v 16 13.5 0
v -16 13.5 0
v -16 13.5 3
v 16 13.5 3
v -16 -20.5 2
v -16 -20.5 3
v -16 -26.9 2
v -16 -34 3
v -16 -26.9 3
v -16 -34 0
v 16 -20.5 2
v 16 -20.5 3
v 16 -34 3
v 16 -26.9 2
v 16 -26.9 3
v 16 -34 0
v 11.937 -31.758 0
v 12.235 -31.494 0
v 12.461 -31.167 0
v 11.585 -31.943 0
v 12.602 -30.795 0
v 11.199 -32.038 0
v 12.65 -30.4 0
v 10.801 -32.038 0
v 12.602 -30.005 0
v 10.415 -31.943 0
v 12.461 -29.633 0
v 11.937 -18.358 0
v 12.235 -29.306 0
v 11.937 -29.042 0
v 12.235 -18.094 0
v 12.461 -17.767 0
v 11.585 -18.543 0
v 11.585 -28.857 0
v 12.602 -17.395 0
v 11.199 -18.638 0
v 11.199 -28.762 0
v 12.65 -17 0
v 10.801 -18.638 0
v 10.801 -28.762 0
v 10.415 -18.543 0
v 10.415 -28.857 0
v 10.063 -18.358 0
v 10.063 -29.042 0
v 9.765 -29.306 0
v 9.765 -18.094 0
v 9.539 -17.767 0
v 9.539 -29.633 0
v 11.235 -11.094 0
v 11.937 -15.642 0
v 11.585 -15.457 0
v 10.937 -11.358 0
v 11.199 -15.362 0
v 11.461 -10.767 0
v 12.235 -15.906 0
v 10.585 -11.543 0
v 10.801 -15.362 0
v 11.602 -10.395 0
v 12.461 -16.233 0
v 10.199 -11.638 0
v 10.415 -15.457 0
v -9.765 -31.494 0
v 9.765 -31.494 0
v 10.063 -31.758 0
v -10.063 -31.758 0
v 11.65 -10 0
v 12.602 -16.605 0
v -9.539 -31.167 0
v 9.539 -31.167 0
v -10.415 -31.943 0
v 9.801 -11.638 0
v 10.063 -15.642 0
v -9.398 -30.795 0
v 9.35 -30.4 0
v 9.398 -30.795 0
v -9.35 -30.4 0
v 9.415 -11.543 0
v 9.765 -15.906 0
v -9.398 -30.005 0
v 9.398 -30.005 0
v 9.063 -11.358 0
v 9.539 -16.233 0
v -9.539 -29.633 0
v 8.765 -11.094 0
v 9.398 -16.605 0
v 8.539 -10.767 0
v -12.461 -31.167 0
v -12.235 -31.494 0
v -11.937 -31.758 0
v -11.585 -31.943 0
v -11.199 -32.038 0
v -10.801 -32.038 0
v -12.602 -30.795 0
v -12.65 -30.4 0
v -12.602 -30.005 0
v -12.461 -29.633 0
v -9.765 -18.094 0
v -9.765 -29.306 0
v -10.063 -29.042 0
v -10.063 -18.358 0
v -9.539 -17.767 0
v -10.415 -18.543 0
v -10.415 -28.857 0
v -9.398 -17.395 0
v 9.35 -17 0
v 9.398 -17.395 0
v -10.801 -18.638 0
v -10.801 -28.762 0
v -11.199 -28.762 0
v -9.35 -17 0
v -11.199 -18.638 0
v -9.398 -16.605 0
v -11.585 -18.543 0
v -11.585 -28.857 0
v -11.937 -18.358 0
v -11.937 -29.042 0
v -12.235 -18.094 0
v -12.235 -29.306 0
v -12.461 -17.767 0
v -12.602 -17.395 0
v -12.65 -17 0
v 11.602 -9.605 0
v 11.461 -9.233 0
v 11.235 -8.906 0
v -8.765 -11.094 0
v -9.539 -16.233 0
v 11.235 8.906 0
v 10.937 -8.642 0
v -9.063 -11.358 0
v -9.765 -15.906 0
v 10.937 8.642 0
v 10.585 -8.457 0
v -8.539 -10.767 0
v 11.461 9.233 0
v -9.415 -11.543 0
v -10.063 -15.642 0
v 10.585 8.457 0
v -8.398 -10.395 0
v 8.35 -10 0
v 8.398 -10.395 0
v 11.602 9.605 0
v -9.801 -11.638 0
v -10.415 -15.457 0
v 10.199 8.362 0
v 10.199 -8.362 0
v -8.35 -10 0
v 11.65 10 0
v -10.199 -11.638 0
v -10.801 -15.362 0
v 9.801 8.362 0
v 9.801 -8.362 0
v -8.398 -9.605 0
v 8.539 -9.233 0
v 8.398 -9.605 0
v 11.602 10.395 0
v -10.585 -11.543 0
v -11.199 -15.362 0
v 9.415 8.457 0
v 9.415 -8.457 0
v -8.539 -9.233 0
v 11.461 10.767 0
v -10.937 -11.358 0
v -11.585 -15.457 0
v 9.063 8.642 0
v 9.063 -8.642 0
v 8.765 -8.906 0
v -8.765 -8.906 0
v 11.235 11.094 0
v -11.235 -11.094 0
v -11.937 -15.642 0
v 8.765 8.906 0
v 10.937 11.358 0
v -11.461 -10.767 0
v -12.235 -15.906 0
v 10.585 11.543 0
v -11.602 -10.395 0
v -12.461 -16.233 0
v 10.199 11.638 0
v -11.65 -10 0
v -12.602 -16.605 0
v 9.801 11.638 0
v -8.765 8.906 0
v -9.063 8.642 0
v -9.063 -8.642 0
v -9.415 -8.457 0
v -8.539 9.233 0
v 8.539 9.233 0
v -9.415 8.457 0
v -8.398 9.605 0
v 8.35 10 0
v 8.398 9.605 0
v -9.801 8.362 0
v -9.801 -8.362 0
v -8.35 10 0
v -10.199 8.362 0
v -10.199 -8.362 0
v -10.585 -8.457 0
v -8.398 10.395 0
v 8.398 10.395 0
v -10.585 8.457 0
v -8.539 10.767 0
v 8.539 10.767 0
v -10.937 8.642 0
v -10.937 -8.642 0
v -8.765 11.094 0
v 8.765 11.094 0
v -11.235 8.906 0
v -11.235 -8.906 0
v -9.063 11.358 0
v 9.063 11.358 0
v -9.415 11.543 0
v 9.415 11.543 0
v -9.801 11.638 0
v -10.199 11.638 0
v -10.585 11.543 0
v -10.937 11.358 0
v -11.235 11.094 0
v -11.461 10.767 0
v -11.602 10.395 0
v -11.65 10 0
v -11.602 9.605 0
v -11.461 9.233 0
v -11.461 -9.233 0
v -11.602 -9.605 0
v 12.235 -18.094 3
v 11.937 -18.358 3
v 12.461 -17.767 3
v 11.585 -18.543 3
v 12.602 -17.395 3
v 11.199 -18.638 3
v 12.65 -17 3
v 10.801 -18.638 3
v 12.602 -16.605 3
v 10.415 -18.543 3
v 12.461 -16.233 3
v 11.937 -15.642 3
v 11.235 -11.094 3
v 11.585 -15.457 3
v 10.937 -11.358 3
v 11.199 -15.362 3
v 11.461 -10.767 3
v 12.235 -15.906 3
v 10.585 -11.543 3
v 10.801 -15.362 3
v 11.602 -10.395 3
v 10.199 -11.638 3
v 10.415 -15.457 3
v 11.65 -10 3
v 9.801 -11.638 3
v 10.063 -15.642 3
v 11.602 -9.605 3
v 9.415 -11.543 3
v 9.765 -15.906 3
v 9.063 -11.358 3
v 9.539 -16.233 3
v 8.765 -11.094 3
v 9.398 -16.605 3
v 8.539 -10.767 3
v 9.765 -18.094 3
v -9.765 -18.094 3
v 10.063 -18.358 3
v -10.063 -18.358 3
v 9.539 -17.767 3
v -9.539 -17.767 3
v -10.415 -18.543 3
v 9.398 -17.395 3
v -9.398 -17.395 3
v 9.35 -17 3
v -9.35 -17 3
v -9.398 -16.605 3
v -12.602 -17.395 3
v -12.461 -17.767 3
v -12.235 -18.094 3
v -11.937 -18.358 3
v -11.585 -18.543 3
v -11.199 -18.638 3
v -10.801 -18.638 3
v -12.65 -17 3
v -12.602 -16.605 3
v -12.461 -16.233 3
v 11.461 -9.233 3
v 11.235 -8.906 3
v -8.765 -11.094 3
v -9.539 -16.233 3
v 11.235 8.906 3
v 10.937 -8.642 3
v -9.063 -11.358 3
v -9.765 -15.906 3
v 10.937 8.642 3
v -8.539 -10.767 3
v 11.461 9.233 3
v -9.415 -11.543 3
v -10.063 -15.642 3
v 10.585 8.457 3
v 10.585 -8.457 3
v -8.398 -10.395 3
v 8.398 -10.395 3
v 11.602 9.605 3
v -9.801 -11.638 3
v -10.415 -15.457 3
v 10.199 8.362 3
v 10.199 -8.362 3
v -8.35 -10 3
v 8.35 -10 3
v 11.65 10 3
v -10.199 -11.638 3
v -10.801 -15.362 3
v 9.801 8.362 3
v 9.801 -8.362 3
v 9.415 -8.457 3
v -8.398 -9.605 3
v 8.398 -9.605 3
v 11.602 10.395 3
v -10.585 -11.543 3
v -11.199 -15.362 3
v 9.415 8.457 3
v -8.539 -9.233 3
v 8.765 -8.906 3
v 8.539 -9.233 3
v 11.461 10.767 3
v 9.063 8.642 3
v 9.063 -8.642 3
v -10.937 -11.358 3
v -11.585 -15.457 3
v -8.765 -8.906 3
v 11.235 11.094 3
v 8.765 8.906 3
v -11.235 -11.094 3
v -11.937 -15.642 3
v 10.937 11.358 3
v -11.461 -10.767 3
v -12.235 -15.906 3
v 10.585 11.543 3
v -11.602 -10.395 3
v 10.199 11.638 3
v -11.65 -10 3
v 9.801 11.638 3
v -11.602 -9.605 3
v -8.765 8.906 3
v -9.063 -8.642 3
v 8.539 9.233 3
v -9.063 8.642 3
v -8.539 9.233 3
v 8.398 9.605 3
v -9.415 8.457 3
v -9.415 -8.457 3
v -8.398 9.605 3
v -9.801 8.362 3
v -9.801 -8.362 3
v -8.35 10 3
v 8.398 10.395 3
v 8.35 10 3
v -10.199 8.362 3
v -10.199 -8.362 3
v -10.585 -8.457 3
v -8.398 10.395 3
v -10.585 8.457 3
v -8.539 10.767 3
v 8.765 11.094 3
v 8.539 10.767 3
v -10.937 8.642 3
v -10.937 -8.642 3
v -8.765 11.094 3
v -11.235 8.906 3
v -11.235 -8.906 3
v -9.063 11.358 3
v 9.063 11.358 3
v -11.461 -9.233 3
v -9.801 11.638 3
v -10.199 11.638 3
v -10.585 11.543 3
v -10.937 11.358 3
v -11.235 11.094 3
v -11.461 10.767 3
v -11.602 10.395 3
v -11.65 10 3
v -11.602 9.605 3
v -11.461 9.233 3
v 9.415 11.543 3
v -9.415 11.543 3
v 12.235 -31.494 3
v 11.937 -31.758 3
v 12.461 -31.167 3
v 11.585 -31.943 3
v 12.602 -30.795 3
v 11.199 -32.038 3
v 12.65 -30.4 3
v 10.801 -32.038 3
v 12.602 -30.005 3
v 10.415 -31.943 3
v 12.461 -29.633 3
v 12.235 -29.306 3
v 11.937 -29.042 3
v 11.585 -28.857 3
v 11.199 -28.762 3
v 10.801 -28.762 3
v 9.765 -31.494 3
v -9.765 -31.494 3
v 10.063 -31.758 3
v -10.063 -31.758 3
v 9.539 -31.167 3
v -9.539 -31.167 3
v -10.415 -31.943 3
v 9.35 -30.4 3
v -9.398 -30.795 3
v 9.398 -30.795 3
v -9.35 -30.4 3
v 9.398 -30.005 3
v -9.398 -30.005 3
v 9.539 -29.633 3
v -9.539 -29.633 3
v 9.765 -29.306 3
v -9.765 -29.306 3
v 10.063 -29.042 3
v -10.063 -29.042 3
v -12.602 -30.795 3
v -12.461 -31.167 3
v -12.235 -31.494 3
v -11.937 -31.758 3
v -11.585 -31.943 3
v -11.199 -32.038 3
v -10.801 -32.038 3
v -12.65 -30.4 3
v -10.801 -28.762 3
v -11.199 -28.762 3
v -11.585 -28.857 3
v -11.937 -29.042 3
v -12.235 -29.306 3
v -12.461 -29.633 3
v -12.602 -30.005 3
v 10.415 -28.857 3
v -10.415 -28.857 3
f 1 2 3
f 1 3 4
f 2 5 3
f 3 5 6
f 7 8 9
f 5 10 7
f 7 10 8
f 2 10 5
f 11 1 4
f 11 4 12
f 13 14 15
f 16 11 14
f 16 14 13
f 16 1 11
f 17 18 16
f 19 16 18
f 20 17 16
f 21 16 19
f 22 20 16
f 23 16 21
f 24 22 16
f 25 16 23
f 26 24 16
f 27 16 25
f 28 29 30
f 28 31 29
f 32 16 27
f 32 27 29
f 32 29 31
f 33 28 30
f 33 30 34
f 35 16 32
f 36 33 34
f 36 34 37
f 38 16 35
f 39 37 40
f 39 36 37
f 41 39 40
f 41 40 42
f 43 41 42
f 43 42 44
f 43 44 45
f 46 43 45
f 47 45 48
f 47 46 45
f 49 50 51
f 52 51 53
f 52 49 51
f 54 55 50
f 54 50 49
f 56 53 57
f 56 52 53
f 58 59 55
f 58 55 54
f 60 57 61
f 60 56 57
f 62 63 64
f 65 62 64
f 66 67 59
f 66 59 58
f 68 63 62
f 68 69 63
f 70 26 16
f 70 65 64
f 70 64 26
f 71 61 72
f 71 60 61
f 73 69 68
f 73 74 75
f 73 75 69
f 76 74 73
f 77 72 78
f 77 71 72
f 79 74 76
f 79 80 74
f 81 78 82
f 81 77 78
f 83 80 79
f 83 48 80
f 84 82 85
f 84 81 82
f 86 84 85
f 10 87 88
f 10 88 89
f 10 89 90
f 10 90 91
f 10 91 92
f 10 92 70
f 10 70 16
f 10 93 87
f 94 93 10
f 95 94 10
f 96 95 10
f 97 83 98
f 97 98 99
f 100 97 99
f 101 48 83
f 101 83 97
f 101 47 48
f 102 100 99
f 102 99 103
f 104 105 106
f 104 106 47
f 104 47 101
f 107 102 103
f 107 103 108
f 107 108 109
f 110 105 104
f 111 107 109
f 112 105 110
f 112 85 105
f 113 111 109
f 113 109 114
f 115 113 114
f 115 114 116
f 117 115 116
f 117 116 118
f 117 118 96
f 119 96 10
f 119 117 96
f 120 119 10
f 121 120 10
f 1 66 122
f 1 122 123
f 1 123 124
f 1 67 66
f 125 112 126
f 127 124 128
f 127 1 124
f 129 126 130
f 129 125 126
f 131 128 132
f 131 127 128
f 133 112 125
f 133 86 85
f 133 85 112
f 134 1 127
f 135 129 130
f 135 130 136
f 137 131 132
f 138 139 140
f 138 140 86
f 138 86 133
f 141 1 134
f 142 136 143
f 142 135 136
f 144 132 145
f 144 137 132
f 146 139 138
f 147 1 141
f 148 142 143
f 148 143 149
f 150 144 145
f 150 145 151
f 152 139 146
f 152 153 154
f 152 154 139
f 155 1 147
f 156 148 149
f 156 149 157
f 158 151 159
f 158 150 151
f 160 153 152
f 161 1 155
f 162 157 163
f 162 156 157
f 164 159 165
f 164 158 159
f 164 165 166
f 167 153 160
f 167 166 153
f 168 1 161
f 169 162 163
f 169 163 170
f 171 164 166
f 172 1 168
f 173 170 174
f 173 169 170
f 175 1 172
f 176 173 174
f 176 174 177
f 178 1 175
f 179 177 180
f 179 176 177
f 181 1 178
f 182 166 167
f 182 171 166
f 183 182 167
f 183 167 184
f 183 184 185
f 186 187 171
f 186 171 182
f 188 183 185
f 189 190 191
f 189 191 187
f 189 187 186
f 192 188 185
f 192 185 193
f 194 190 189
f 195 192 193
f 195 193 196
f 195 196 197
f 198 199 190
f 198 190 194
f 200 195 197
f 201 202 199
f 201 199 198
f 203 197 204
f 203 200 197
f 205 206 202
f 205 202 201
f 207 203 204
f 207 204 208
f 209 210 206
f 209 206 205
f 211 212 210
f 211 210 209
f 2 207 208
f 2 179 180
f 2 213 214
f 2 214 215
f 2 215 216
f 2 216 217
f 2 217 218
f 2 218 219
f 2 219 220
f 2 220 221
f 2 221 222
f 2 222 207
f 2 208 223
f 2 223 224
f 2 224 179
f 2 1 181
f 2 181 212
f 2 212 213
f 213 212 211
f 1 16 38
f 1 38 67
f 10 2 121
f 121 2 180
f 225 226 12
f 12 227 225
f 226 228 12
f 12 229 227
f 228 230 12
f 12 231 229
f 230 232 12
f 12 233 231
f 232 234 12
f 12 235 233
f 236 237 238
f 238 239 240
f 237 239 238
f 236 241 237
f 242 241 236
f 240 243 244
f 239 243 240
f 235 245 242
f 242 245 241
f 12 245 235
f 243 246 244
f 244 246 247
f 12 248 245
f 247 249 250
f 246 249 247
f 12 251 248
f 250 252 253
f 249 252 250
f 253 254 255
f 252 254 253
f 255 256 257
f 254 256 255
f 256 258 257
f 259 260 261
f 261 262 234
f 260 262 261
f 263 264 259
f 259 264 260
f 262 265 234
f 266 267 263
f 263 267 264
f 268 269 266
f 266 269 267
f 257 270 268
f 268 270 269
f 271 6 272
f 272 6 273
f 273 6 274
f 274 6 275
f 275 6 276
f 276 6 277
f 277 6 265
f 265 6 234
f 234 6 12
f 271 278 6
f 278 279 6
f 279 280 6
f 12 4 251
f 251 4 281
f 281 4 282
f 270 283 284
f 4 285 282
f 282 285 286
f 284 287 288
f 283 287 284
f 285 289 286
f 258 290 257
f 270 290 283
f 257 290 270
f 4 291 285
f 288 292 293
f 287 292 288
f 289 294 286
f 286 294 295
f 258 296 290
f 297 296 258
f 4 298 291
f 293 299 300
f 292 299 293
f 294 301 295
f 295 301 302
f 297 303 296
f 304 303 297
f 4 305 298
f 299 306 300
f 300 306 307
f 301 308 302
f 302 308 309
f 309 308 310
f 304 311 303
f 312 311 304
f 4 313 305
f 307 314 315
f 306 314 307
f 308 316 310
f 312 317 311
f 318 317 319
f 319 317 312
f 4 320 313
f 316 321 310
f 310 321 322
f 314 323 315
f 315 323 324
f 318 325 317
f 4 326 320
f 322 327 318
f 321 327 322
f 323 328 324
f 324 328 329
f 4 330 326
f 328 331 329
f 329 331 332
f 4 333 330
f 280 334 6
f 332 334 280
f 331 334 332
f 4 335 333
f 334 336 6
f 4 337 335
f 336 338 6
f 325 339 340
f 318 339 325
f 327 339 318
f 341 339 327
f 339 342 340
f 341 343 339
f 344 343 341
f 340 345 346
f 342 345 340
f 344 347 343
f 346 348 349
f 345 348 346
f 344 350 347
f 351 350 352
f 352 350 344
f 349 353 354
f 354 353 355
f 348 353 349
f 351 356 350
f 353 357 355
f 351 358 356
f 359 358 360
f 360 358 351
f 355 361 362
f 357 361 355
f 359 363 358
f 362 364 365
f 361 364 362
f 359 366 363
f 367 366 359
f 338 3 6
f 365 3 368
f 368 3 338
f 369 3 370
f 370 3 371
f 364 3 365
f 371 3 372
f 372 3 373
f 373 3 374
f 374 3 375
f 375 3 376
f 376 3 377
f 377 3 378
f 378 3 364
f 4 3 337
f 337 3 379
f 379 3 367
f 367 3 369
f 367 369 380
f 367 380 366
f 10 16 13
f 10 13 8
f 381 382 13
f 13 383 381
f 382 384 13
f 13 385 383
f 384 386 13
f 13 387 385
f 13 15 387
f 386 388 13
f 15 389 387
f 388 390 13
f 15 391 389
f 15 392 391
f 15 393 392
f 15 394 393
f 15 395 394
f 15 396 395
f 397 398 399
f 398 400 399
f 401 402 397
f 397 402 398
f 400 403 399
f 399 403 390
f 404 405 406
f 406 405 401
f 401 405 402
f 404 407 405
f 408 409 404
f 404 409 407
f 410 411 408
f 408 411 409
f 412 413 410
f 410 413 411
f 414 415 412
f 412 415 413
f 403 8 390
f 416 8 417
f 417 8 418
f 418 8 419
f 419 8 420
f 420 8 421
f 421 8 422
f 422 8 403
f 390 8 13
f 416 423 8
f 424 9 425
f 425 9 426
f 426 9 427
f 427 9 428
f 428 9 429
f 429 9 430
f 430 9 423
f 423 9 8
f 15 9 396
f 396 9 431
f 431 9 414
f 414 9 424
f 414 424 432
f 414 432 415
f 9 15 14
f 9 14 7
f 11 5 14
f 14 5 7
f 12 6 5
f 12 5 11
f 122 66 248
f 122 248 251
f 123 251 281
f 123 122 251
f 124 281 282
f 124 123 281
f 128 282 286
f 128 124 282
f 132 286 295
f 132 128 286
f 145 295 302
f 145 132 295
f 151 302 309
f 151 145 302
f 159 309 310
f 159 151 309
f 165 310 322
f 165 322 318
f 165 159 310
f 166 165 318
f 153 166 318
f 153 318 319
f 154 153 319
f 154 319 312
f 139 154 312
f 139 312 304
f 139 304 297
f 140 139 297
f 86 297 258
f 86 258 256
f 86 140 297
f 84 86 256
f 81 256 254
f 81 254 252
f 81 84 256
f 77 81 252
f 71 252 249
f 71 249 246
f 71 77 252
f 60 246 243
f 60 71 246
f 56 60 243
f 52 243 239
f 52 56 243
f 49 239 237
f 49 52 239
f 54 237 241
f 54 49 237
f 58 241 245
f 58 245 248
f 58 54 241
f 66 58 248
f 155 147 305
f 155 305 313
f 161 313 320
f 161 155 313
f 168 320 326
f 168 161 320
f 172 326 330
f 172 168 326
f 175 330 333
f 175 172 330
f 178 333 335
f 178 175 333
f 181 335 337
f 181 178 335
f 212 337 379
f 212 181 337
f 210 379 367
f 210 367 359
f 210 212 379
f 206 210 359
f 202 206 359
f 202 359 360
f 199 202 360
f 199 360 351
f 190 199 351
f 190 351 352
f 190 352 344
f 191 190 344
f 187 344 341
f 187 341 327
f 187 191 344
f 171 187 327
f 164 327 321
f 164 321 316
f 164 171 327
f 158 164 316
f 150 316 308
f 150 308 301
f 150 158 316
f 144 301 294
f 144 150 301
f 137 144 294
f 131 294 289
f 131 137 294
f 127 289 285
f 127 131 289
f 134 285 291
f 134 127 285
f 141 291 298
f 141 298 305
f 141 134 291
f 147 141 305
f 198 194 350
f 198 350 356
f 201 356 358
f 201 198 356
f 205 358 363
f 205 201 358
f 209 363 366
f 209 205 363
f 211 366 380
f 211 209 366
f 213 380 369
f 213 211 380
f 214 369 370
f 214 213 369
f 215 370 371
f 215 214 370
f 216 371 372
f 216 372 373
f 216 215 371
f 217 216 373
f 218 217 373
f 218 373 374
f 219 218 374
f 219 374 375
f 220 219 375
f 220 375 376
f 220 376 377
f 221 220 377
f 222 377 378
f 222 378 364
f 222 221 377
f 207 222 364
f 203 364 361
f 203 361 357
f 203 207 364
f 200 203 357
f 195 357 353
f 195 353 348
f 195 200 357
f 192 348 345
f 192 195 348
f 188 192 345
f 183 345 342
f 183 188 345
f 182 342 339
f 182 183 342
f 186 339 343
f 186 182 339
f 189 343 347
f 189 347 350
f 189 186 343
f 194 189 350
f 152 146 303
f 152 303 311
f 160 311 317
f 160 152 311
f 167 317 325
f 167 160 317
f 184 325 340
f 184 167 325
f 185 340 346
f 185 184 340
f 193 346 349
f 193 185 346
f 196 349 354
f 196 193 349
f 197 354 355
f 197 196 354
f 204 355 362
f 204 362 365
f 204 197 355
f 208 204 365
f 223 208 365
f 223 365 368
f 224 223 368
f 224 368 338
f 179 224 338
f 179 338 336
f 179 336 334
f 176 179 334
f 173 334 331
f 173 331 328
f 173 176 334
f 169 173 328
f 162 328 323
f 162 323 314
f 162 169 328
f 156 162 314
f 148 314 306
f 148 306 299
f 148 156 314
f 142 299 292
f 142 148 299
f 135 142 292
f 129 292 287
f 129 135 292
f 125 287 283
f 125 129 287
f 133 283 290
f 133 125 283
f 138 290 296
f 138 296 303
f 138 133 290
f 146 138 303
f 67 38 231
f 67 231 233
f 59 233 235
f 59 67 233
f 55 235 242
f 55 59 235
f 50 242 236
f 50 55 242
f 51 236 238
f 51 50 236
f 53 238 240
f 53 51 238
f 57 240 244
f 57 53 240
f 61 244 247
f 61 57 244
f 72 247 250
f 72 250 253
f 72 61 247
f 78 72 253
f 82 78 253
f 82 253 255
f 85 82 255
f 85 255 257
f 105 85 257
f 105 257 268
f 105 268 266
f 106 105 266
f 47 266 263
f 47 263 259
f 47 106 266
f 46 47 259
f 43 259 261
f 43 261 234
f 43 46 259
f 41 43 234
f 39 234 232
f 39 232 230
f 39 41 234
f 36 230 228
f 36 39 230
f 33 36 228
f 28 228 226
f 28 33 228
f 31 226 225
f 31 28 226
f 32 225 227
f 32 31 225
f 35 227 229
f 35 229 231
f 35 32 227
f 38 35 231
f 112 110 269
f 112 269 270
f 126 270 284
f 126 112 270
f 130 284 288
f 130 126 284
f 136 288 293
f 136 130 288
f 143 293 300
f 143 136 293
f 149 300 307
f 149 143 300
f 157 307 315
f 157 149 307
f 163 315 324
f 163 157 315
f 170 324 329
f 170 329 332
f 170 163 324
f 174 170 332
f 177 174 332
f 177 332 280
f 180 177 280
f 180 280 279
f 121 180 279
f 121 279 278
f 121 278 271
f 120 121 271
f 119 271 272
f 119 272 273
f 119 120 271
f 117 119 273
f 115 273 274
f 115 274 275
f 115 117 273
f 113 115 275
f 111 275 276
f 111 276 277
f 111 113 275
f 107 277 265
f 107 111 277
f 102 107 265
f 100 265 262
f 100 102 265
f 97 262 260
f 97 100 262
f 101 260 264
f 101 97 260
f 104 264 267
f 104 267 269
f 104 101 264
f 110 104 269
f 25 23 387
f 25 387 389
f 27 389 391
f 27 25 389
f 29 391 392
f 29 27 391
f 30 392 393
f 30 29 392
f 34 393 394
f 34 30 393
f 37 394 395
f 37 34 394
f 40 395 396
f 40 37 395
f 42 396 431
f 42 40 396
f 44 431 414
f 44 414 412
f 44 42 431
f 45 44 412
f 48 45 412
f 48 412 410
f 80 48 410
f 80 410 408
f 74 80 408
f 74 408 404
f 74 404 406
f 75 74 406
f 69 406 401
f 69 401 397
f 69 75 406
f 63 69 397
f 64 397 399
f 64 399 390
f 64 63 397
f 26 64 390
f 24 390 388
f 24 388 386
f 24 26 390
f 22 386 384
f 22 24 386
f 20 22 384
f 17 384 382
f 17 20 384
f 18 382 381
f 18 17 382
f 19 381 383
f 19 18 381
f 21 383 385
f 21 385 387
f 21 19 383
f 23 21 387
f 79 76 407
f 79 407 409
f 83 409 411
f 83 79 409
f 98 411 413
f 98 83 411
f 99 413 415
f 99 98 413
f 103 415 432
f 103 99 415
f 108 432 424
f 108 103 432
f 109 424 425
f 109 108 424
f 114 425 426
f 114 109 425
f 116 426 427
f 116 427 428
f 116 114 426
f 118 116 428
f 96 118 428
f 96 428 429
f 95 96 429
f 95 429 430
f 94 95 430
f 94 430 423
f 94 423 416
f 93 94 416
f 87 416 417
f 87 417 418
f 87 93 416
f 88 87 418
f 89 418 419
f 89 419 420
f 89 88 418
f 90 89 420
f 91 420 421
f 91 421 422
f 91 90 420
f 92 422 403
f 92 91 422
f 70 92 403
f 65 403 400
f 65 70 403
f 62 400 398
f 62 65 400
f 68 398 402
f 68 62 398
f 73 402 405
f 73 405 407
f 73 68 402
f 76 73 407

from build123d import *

# Parameters (mm, degrees)
SKETCH_W     = 32
SKETCH_H     = 47.5
SKETCH_R     = 1.65
PAD_DEPTH    = 3
SKETCH001_W  = 61.411388
SKETCH001_H  = 6.4
POCKET_DEPTH = 1


with BuildPart() as part:
    # Sketch → Pad (new body)
    with BuildSketch(Plane.XY):
        with Locations((0, -10.25)):
            Rectangle(SKETCH_W, SKETCH_H)
        with Locations((-10, -10)):
            Circle(SKETCH_R, mode=Mode.SUBTRACT)
        with Locations((-10, 10)):
            Circle(SKETCH_R, mode=Mode.SUBTRACT)
        with Locations((10, 10)):
            Circle(SKETCH_R, mode=Mode.SUBTRACT)
        with Locations((10, -10)):
            Circle(SKETCH_R, mode=Mode.SUBTRACT)
        with Locations((-11, -17)):
            Circle(SKETCH_R, mode=Mode.SUBTRACT)
        with Locations((11, -17)):
            Circle(SKETCH_R, mode=Mode.SUBTRACT)
        with Locations((-11, -30.4)):
            Circle(SKETCH_R, mode=Mode.SUBTRACT)
        with Locations((11, -30.4)):
            Circle(SKETCH_R, mode=Mode.SUBTRACT)
    extrude(amount=PAD_DEPTH)

    # Sketch001 (on Face14 of Pad) → Pocket (cut)
    with BuildSketch(Plane.XY.offset(3)):
        with Locations((0.476776, -23.7)):
            Rectangle(SKETCH001_W, SKETCH001_H)
    extrude(amount=-POCKET_DEPTH, mode=Mode.SUBTRACT)


solid = part.part
